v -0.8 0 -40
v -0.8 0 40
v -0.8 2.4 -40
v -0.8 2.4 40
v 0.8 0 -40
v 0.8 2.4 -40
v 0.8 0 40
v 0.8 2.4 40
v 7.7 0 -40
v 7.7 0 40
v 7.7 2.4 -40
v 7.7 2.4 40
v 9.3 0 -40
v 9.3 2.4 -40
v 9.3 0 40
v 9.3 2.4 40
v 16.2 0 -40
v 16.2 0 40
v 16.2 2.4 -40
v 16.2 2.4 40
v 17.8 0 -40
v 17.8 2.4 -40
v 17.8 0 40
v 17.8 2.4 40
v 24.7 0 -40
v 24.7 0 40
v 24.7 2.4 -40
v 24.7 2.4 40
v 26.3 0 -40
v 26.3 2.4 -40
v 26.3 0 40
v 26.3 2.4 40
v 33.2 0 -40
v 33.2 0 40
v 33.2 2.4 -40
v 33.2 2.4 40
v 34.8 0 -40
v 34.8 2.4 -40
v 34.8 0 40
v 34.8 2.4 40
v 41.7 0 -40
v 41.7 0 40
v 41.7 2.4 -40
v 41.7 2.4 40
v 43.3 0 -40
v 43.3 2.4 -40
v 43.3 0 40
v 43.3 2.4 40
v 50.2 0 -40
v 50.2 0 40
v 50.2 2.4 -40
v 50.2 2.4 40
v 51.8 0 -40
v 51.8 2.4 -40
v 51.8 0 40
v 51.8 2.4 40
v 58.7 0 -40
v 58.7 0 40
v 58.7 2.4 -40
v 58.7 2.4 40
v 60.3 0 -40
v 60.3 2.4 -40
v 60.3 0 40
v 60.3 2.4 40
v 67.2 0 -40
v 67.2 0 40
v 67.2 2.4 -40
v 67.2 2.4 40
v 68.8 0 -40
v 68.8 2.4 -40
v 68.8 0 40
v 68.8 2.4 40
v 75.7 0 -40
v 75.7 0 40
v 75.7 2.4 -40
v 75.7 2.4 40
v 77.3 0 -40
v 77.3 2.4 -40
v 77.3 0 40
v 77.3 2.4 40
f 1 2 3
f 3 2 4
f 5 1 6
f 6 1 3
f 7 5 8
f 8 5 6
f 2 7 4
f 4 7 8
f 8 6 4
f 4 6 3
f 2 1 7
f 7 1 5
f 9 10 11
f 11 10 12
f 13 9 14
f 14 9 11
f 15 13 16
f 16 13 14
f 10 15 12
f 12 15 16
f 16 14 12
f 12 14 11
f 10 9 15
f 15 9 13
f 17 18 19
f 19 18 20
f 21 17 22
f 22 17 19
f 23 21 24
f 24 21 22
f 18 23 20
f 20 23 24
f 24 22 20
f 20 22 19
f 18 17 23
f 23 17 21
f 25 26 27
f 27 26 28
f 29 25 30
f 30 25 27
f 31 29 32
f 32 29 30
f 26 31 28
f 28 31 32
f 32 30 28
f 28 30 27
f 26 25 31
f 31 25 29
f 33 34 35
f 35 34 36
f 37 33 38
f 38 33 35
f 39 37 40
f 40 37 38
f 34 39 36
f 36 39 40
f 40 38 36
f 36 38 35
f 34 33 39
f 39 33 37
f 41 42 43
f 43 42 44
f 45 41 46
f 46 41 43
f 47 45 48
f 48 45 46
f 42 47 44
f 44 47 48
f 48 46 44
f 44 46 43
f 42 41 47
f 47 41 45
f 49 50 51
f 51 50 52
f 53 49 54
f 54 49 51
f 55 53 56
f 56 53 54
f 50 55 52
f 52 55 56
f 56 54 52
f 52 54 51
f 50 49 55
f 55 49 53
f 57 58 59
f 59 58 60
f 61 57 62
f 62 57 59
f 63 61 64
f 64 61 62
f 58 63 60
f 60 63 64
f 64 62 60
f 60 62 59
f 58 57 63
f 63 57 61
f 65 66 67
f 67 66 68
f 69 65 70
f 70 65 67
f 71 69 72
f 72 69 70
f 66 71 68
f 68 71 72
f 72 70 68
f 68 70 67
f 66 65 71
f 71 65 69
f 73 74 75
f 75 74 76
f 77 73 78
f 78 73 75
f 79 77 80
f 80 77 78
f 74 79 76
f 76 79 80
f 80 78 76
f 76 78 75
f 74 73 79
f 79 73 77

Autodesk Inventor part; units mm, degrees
ref_plane "YZ Plane" through (0, 0, 0) normal (1, 0, 0) x (0, 1, 0)
ref_plane "XZ Plane" through (0, 0, 0) normal (0, 1, 0) x (-1, 0, 0)
ref_plane "XY Plane" through (0, 0, 0) normal (0, 0, 1) x (1, 0, 0)
sketch "Sketch1" plane through (0, 0, 0) normal (0, 1, 0) x (-1, 0, 0)
  line L0 (0.8, -40) -> (-0.8, -40)
  line L1 (-0.8, -40) -> (-0.8, 40)
  line L2 (-0.8, 40) -> (0.8, 40)
  line L3 (0.8, 40) -> (0.8, -40)
  line L4 (0.8, -40) -> (-0.8, 40) construction
  line L5 (-0.8, -40) -> (0.8, 40) construction
  point P0 (0, 0)
  dimension "d0" = 80
  dimension "d1" = 1.6
extrude "Extrusion1" add sketch "Sketch1" along normal blind 2.4
pattern_linear "Rectangular Pattern1" count 10 spacing 8.5 along (1, 0, 0) of "Extrusion1"
equation "\"base_add\" = 0.9"
properties part number "structure1"
